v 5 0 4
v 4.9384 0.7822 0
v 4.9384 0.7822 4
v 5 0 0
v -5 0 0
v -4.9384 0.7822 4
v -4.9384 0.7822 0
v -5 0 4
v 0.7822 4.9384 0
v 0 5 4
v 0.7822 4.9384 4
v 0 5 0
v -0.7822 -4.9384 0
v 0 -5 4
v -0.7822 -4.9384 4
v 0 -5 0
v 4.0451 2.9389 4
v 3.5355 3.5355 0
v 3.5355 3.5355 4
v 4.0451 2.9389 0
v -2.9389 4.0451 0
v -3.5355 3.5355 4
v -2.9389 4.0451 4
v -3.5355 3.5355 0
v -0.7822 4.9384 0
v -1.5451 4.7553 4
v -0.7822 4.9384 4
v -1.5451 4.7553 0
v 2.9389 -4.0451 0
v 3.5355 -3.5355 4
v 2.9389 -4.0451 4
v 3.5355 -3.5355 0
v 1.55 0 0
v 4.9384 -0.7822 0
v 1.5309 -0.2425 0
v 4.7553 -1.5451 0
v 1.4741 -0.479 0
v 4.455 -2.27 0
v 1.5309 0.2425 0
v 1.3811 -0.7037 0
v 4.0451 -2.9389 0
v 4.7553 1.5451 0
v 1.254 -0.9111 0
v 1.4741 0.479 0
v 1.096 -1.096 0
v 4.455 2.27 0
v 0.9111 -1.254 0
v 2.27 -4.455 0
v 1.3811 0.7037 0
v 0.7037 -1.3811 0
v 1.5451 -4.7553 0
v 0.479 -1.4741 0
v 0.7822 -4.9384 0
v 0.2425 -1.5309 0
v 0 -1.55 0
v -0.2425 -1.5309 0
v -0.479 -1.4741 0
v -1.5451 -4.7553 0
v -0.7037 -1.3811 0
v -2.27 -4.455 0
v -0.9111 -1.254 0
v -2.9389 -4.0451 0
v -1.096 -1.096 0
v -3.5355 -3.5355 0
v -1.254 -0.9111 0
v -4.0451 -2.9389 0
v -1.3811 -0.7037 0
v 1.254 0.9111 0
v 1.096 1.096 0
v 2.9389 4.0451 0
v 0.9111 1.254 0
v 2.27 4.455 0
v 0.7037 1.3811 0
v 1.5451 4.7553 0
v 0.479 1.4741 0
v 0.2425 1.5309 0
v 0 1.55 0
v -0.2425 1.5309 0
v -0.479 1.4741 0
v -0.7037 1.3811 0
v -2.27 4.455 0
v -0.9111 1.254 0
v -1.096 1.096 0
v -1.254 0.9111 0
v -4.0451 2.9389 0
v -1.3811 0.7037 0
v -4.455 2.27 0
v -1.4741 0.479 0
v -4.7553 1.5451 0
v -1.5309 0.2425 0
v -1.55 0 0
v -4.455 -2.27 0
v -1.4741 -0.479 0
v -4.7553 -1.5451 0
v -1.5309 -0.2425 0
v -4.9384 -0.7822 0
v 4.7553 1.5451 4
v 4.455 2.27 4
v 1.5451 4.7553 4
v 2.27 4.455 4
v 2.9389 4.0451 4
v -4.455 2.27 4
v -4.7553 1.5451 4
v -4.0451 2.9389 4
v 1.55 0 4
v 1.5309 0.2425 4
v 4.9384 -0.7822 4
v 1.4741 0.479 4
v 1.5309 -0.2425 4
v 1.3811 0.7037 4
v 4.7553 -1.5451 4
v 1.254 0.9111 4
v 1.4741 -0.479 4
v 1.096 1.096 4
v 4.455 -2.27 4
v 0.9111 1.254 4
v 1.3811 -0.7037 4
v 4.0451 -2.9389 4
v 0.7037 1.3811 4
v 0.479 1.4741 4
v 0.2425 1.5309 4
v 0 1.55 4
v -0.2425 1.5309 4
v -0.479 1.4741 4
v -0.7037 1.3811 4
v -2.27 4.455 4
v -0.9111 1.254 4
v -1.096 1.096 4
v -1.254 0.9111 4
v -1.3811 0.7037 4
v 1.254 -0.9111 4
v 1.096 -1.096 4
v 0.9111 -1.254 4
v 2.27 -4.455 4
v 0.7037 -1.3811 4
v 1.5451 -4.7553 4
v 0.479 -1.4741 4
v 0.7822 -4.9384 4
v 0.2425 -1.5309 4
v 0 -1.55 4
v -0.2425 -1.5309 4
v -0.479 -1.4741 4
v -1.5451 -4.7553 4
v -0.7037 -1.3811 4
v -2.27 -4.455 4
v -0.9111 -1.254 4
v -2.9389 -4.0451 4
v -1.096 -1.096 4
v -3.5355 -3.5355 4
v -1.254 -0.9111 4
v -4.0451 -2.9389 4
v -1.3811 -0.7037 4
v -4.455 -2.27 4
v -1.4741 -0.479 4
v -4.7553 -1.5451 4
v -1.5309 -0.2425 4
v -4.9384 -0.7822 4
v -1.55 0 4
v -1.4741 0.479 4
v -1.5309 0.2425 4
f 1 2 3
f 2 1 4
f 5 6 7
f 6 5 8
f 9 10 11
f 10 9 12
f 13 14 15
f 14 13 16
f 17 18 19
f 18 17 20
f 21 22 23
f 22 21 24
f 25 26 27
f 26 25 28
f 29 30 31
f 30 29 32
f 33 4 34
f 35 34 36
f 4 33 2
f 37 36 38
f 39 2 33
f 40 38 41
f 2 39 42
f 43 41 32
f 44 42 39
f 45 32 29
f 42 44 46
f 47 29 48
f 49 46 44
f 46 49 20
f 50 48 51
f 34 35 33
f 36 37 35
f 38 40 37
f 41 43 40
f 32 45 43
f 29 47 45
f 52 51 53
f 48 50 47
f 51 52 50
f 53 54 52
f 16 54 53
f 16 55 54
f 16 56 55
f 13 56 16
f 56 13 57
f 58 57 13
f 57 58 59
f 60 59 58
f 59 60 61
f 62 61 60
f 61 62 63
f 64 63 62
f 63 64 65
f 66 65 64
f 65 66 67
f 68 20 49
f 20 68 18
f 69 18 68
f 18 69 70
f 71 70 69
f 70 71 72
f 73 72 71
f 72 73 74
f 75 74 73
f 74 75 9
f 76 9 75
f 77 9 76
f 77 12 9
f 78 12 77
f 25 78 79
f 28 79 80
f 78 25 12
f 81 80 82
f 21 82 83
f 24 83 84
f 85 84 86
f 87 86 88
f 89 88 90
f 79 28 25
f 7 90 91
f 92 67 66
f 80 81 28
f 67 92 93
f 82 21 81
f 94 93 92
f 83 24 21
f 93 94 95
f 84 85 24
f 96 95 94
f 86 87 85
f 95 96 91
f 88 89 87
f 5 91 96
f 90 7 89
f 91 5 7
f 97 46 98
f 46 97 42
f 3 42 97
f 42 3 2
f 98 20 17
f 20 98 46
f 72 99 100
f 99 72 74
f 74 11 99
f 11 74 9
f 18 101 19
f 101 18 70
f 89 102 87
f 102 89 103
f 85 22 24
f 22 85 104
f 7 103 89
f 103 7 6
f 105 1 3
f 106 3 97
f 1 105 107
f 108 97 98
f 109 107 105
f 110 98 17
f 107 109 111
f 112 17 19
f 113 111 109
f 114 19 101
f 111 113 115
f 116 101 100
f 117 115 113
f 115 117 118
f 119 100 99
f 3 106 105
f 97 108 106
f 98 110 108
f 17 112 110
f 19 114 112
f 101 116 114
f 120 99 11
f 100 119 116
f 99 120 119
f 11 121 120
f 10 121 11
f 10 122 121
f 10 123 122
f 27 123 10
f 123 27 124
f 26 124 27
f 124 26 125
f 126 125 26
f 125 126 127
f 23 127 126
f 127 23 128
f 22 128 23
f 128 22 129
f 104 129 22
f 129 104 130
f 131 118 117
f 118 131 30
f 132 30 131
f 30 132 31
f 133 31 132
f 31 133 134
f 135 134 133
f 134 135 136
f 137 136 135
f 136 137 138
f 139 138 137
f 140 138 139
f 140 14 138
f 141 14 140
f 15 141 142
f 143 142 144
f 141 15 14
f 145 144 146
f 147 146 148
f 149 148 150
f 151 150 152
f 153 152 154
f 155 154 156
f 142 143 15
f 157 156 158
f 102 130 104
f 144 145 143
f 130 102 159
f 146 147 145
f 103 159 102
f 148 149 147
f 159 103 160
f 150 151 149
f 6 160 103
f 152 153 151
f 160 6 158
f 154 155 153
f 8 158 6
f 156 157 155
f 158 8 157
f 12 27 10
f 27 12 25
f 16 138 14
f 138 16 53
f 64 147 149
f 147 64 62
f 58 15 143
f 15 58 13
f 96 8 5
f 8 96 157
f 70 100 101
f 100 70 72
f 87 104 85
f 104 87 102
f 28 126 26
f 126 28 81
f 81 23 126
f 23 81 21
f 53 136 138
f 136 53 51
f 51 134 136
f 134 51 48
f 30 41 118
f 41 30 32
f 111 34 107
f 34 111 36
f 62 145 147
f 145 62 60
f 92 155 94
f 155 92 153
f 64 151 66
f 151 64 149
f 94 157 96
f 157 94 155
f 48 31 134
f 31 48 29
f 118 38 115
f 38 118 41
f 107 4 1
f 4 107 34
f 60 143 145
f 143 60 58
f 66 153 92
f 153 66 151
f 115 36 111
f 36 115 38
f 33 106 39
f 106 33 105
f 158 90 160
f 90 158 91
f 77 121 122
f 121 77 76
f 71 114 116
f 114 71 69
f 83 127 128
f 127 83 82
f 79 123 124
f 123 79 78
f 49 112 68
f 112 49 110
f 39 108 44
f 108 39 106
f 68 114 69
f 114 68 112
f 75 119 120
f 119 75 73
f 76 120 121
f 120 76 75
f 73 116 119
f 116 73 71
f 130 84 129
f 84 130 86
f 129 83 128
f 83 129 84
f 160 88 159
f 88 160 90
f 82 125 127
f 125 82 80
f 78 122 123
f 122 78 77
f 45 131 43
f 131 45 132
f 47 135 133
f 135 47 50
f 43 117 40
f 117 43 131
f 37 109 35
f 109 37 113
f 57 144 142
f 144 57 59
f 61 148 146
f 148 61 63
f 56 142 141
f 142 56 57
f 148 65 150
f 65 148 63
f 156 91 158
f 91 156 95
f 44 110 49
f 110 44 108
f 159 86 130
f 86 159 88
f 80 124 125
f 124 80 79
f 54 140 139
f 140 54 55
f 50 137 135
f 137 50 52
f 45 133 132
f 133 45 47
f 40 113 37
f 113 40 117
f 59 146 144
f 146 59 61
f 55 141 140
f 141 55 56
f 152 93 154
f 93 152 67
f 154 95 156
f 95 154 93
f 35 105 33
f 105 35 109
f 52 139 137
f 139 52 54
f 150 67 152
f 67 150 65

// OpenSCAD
smooth = 40;

difference()
{

color("green")
cylinder(4,d=10,$fn=smooth);

color("red")
translate([0,0,-1])
cylinder(10,d=3.1,$fn=smooth);

}
